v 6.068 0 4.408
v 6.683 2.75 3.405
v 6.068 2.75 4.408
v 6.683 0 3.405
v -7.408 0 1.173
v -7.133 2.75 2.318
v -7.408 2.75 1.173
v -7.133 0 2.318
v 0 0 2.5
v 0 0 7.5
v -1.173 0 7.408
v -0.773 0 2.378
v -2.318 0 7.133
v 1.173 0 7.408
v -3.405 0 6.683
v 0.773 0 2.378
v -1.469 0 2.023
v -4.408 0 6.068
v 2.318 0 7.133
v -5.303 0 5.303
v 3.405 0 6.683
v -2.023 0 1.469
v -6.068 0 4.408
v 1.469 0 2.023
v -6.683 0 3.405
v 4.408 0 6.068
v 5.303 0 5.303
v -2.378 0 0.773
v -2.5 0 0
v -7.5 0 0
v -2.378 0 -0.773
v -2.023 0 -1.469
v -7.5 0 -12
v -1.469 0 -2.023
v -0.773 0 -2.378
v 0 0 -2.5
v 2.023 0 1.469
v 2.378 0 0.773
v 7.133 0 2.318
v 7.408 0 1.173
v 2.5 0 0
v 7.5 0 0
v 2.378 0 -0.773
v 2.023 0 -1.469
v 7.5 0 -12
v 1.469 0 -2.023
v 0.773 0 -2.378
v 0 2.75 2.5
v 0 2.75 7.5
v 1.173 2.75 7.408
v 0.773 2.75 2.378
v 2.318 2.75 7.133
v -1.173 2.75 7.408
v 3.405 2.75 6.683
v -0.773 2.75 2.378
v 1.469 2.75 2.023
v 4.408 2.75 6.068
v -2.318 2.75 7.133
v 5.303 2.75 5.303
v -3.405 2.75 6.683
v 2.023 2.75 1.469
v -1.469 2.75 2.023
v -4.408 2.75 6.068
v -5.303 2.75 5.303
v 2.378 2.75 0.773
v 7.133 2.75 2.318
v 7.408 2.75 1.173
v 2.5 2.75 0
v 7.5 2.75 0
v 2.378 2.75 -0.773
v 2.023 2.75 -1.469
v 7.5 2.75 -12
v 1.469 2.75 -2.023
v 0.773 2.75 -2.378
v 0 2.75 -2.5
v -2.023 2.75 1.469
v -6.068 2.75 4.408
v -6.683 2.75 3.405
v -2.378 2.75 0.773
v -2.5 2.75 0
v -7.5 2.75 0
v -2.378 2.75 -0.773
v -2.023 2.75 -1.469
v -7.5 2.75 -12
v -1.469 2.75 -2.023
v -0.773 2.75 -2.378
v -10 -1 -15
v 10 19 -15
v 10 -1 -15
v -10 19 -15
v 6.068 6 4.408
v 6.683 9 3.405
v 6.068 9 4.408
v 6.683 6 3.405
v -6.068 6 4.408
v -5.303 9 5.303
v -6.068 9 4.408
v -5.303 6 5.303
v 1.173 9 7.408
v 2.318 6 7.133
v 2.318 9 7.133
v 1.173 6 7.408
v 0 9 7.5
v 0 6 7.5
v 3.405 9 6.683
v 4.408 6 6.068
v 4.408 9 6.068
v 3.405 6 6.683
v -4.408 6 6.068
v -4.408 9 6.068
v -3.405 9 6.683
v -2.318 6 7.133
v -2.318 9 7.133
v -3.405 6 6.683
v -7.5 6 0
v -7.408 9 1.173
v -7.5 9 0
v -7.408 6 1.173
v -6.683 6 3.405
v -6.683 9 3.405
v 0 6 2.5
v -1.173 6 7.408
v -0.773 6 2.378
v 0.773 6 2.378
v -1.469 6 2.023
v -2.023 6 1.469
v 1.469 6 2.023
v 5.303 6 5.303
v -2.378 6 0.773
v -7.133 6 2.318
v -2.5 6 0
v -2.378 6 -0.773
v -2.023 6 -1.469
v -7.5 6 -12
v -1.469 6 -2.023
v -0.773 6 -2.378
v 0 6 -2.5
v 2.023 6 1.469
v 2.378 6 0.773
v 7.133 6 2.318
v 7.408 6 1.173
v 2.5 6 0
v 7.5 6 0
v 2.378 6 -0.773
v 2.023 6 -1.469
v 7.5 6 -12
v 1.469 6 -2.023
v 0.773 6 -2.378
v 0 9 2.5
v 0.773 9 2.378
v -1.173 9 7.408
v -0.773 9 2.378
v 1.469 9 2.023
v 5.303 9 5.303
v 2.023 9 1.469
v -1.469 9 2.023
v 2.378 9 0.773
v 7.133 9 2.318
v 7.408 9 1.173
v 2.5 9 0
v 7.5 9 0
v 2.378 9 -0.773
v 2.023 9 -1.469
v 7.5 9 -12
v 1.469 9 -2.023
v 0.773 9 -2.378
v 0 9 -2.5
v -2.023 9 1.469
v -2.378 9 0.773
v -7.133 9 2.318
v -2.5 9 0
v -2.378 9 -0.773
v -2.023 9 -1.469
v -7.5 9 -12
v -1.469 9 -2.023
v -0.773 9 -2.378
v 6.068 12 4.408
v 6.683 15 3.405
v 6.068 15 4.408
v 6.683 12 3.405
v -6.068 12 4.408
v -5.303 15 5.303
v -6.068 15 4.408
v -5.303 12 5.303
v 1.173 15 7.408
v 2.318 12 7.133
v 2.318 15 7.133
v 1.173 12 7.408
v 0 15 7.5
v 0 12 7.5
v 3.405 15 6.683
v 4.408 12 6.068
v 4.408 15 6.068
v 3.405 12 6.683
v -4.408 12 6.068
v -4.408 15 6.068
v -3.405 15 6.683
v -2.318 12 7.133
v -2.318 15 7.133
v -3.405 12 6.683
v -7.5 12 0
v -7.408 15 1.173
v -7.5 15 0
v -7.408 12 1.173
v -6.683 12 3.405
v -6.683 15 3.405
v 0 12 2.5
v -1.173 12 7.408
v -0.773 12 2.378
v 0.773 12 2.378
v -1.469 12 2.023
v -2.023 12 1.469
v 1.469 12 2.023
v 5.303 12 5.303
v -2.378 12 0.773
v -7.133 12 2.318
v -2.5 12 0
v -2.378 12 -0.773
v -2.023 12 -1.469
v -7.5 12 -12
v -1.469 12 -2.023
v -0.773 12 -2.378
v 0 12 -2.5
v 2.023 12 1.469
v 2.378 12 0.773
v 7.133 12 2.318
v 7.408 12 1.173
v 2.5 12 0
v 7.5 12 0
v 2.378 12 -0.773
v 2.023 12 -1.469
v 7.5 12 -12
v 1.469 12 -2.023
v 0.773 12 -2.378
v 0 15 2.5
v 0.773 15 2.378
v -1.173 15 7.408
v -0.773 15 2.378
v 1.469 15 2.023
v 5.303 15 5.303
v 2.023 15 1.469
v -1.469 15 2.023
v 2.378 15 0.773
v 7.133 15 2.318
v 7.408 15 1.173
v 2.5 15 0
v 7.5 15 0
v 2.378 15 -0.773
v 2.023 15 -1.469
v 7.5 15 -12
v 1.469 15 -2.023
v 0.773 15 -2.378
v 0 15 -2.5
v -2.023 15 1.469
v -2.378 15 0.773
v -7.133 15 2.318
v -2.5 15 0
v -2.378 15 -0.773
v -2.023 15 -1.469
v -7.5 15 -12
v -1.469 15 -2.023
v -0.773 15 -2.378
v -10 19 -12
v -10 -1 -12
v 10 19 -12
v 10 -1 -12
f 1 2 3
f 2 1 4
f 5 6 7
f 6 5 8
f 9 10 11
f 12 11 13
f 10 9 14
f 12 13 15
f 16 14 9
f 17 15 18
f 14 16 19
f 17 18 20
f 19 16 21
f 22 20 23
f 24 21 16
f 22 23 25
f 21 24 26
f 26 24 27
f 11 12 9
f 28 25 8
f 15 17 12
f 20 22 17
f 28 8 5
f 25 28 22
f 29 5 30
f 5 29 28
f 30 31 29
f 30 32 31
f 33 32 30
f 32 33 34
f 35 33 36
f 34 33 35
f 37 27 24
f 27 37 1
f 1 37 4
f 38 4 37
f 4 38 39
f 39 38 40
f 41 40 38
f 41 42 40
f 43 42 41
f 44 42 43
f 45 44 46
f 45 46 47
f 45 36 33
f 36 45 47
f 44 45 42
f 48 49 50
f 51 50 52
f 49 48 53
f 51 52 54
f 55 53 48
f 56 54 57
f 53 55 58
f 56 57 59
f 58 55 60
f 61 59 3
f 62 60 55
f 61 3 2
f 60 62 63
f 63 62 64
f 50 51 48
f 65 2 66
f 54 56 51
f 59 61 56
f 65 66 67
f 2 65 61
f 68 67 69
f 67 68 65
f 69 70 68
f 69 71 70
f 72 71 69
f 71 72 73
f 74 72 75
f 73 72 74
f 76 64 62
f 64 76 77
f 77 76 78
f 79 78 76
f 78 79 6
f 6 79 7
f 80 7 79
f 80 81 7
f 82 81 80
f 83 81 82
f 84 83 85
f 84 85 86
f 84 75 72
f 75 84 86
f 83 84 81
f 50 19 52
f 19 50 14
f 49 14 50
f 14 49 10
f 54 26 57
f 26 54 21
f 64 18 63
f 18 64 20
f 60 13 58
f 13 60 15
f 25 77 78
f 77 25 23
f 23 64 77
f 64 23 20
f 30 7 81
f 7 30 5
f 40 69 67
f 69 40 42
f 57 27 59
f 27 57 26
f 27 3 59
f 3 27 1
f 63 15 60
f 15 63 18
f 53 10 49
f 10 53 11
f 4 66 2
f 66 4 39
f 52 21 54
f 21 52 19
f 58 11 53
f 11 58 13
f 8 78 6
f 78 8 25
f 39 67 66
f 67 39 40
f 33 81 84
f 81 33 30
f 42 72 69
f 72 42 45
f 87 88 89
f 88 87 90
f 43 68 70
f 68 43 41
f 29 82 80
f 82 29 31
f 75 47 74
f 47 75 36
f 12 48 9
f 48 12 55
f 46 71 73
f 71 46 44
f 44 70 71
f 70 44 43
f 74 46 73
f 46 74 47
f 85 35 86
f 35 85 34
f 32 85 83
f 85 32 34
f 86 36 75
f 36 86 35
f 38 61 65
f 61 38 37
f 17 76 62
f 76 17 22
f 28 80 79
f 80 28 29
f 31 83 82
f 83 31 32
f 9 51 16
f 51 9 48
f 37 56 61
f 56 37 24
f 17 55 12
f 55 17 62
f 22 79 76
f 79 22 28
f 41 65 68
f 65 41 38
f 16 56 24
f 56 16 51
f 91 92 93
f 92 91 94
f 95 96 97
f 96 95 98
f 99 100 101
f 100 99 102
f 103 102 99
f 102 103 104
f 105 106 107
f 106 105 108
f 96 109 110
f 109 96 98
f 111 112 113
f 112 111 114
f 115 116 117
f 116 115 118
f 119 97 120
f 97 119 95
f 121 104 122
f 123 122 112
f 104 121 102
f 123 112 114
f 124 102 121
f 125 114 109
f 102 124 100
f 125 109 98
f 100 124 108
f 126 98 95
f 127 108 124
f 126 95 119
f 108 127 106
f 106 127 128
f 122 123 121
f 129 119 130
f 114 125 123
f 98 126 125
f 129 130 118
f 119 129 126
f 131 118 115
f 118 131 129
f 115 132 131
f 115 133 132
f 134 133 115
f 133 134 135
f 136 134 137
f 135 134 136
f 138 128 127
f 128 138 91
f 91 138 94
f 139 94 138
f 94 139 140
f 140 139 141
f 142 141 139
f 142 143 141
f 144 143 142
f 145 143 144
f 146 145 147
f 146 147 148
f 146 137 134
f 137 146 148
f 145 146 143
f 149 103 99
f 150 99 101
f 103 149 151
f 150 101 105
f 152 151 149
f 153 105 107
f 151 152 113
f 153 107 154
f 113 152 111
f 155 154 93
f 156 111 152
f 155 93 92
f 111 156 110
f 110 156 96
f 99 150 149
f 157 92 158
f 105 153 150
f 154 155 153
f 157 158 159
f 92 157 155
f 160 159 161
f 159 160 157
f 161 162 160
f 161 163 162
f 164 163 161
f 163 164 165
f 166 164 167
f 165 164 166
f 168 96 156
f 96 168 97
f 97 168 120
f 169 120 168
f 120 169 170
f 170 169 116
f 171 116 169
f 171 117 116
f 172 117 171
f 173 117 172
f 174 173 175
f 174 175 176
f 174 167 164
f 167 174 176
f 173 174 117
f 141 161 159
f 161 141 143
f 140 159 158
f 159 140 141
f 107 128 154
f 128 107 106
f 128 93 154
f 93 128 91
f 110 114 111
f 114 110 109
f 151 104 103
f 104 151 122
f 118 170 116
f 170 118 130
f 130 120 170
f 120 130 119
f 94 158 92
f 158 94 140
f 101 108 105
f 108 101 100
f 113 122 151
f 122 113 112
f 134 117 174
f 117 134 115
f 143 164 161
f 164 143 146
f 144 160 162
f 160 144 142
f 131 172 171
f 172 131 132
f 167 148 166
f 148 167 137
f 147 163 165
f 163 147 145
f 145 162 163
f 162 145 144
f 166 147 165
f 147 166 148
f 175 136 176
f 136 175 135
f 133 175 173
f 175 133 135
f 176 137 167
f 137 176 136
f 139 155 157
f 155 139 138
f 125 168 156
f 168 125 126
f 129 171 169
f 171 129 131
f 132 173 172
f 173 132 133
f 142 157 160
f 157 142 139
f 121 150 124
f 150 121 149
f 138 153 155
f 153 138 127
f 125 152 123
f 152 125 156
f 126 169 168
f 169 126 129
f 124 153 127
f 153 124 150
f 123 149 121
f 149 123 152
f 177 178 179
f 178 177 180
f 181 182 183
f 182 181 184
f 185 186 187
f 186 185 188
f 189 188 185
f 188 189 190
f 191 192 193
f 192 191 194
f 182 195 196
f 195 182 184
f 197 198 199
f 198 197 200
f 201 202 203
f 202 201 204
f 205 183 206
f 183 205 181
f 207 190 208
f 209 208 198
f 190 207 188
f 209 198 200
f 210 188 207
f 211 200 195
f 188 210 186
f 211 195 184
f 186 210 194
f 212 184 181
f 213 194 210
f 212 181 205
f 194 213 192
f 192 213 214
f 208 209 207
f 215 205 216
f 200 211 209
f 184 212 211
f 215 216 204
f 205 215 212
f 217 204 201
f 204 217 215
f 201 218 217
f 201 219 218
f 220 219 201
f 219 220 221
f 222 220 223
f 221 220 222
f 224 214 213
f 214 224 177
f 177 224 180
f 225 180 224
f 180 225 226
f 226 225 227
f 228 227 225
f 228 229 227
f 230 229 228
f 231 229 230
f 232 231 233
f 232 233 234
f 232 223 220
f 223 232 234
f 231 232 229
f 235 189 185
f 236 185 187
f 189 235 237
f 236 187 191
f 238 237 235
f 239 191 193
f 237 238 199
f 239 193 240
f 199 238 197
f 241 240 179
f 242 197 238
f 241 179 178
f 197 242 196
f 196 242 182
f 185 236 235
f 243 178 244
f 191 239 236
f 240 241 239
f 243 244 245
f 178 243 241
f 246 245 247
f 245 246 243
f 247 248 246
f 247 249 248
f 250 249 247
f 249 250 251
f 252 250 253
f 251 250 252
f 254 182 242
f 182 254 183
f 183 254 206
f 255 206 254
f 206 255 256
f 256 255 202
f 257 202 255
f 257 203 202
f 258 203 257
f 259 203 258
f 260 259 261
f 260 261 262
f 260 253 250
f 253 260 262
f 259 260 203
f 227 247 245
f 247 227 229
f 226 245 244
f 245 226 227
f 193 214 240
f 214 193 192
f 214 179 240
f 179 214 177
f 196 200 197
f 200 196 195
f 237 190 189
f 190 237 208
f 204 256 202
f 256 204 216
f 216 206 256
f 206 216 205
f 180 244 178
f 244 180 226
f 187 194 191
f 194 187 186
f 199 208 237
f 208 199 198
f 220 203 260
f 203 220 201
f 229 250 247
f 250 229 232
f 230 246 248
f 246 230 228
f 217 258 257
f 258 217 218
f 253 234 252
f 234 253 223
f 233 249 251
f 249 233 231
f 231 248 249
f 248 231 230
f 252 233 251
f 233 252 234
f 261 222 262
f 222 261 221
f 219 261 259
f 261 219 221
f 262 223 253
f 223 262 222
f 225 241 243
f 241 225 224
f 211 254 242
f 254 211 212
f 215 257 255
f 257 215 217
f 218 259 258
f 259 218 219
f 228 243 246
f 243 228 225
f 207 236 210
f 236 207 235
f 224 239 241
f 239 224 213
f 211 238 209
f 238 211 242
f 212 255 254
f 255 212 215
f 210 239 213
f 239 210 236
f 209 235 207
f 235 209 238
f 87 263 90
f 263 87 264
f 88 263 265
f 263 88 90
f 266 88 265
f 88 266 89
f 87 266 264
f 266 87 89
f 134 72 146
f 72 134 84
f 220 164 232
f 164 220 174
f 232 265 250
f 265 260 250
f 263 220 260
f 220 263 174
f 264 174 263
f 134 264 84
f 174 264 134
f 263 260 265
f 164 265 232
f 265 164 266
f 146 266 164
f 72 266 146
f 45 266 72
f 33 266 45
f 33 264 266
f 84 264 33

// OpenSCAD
rotate([-90,0,0]){
difference(){
union(){
cylinder(r=7.5,h=2.75,$fn=40);
translate([-7.5,0,0])cube([15,15,2.75]);
}
cylinder(d=5,h=3,$fn=20);
}

translate([0,0,6])
difference(){
union(){
cylinder(r=7.5,h=3,$fn=40);
translate([-7.5,0,0])cube([15,15,3]);
}
cylinder(d=5,h=3,$fn=20);
}

translate([0,0,12])
difference(){
union(){
cylinder(r=7.5,h=3,$fn=40);
translate([-7.5,0,0])cube([15,15,3]);
}
cylinder(d=5,h=3,$fn=20);
}

translate([-10,12,-1])cube([20,3,20]);
}
